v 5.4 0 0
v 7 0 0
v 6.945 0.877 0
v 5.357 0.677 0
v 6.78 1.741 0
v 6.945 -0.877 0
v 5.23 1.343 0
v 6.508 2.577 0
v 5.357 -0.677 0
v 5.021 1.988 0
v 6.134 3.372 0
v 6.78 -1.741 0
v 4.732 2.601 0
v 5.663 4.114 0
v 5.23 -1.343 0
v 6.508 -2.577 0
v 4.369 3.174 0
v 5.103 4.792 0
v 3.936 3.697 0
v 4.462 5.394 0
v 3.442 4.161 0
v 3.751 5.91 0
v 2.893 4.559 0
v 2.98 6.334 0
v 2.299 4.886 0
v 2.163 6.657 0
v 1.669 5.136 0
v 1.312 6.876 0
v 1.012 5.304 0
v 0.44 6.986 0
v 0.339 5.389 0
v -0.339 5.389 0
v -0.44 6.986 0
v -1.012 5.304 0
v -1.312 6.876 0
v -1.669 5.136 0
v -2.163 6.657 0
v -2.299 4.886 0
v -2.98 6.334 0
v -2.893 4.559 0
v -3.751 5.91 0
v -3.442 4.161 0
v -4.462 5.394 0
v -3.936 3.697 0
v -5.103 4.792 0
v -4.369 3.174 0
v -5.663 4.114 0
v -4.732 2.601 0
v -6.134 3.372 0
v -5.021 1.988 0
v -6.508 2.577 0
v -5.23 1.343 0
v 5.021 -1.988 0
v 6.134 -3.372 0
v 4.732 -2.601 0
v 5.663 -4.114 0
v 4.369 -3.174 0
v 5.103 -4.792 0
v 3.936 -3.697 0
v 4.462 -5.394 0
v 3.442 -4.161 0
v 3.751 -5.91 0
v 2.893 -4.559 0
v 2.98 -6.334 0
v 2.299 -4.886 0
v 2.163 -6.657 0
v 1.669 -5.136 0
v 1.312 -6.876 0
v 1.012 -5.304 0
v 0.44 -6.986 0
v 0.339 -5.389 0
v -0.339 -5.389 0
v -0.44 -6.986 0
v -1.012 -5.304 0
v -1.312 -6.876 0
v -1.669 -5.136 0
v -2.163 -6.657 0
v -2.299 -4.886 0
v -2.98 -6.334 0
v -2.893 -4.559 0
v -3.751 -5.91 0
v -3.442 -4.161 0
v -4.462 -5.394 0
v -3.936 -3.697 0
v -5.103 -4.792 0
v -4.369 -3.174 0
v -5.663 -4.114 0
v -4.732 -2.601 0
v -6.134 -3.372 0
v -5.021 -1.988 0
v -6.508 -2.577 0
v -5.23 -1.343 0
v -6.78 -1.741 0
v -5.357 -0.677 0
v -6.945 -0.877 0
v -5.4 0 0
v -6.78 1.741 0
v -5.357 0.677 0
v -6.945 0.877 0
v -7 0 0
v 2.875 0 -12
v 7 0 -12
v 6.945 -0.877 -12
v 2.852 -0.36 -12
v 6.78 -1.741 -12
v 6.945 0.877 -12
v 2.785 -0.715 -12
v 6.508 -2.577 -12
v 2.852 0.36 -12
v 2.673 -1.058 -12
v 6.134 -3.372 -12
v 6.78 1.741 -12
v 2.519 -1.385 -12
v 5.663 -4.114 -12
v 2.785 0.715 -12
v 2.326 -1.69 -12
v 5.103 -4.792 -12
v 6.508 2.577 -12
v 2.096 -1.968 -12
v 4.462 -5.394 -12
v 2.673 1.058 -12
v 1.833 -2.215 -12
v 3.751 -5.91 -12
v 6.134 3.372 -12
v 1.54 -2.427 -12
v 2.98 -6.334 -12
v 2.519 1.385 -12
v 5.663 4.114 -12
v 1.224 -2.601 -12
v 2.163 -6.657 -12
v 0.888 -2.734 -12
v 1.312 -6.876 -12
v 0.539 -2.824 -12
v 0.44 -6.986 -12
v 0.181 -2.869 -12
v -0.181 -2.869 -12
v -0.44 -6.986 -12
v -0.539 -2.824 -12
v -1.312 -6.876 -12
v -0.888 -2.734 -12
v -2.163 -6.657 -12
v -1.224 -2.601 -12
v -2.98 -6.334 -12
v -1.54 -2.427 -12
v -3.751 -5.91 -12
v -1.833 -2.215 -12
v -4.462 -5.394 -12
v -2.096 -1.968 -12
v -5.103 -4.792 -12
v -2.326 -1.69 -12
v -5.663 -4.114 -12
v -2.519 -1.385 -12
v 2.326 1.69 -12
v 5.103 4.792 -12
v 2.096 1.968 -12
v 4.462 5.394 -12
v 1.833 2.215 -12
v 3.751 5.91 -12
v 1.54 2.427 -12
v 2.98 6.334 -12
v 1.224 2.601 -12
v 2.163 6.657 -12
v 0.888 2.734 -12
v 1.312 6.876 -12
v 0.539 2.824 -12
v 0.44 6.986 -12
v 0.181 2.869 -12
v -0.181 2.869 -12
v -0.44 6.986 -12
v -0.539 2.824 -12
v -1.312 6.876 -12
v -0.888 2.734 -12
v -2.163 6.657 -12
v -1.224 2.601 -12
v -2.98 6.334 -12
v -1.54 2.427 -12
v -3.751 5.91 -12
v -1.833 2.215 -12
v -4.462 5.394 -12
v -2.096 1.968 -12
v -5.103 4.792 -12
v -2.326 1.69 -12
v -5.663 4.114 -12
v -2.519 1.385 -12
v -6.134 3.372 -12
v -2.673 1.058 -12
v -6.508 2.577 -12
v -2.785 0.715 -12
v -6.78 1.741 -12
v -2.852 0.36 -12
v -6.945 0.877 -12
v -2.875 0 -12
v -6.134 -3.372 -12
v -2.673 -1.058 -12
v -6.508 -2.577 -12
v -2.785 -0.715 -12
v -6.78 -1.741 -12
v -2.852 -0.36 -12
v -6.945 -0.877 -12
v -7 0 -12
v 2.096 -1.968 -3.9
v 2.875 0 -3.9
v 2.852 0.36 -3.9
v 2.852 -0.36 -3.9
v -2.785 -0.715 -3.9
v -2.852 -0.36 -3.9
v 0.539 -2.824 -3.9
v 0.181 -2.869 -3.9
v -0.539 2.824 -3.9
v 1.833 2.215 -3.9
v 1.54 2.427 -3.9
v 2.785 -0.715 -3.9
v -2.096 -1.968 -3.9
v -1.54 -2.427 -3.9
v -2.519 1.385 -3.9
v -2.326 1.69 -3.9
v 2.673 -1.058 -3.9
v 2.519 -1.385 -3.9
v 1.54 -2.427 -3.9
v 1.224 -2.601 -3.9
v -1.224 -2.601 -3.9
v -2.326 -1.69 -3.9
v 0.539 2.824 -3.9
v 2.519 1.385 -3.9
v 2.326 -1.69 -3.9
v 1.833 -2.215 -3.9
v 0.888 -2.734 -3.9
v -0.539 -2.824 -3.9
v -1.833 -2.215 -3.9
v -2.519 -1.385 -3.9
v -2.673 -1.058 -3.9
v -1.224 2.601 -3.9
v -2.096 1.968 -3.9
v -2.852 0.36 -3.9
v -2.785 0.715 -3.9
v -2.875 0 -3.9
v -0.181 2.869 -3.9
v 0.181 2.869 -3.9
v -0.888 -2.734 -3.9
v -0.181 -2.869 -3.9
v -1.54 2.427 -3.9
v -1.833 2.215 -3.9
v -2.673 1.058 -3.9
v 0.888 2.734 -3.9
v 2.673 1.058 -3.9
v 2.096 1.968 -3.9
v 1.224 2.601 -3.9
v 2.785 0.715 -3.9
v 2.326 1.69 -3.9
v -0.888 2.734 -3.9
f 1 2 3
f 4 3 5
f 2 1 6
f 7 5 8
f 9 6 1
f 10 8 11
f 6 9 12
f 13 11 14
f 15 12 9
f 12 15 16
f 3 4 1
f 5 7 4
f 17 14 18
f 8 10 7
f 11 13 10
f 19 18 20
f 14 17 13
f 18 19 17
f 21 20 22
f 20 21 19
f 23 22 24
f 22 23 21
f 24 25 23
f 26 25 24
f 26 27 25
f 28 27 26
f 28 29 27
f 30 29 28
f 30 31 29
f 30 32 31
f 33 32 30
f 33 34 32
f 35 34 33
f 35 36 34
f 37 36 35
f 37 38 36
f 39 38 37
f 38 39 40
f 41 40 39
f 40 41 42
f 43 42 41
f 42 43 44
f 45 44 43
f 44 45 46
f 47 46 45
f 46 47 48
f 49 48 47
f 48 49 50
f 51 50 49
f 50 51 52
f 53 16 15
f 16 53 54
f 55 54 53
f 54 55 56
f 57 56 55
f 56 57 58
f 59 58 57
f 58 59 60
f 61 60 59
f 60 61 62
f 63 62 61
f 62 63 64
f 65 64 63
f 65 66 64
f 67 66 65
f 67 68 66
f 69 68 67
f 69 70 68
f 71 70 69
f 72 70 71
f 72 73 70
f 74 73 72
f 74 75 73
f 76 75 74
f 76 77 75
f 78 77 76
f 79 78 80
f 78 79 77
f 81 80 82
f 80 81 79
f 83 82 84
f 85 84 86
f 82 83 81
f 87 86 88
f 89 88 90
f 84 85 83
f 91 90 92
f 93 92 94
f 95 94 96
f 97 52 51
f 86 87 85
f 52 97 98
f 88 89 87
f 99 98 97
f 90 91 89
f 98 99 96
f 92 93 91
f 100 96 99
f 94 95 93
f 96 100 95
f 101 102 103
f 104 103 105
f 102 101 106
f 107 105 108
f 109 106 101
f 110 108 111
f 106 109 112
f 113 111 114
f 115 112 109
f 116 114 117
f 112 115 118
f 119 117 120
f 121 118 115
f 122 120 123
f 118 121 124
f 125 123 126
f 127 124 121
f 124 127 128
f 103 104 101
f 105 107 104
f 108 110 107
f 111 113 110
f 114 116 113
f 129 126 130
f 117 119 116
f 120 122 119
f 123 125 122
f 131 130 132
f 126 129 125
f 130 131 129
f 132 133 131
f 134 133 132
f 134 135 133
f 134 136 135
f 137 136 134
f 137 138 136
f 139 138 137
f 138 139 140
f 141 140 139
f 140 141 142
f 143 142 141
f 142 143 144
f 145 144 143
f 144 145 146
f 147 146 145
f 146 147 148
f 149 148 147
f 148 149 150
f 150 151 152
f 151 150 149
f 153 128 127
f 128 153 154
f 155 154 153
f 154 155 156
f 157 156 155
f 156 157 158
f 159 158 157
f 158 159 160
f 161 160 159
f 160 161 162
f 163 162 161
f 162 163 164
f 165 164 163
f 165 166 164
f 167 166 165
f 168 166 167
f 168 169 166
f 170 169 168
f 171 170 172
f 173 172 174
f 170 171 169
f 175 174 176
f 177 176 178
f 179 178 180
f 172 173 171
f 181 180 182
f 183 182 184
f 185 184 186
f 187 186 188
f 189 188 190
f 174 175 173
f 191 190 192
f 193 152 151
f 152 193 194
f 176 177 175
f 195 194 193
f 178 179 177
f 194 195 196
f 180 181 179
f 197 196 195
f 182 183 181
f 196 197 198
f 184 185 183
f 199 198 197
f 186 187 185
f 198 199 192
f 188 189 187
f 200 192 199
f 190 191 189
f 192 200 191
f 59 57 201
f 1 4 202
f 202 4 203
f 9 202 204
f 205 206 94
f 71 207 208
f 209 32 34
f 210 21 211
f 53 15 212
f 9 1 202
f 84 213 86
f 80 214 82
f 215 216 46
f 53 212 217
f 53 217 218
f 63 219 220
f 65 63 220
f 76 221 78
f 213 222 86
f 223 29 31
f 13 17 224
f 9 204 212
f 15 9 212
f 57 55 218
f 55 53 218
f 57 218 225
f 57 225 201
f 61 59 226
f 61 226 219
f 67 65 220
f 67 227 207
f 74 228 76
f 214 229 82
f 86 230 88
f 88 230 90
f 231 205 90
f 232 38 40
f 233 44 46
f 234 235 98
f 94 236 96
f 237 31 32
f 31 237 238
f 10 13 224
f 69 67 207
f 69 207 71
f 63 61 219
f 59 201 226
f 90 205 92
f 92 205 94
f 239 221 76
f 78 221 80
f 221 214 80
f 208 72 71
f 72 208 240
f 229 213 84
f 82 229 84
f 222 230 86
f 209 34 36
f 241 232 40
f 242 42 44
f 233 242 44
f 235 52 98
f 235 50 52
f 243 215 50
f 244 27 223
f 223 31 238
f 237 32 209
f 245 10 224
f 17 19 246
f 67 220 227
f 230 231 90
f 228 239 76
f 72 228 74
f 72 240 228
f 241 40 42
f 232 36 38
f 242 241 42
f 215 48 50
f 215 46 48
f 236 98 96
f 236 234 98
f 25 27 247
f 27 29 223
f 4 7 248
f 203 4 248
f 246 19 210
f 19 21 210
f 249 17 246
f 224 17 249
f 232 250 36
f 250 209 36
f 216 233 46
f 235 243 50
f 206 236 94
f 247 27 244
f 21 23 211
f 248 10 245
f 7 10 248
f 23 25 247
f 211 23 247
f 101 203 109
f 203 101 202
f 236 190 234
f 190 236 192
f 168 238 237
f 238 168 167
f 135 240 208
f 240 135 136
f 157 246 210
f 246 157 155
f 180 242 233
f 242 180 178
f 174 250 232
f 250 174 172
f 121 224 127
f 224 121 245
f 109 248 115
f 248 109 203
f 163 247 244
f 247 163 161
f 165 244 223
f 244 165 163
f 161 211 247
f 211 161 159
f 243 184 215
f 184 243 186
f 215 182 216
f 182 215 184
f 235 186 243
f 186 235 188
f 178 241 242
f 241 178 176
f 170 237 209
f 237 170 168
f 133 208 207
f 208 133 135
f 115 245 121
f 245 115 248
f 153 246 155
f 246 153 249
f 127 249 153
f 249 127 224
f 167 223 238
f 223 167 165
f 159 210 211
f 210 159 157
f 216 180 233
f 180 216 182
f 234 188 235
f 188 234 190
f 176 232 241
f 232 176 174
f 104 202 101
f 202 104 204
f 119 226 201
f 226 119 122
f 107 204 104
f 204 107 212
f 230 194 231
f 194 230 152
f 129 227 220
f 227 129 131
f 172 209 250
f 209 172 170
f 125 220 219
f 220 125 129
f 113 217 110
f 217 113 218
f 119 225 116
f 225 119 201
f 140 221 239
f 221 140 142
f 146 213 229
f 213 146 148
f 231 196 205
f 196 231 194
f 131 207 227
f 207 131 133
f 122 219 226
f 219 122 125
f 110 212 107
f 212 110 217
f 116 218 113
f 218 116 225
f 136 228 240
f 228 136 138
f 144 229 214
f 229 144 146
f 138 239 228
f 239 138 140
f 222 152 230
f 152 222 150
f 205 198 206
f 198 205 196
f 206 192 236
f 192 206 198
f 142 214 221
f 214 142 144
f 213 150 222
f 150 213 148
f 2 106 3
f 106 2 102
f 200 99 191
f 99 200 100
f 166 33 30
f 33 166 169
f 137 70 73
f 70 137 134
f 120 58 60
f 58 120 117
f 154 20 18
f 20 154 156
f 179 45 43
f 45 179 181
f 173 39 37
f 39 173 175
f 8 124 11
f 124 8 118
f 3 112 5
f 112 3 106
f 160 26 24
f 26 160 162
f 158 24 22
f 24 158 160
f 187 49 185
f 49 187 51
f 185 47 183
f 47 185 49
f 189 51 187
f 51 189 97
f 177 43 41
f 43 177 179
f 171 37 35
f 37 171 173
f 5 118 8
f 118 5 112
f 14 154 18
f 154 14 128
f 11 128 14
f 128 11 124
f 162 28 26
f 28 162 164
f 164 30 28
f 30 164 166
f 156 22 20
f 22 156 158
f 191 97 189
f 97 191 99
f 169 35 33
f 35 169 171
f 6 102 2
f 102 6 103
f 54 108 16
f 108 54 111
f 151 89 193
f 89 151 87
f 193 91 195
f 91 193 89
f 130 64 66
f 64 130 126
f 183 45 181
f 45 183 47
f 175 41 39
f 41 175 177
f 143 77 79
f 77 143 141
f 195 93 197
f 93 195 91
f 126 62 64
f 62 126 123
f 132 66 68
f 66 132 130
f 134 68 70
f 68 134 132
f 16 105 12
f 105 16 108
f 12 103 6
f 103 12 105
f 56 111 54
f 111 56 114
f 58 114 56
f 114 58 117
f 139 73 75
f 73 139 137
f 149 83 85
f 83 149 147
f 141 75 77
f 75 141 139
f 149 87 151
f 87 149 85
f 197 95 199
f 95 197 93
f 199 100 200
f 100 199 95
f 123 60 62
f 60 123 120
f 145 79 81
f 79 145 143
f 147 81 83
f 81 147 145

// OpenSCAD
$fn = 50;


difference() {
	union() {
		translate(v = [0, 0, -12.0000000000]) {
			cylinder(h = 12, r = 7.0000000000);
		}
		cylinder(h = 0, r = 10.0000000000);
	}
	union() {
		translate(v = [0, 0, 0]) {
			rotate(a = [0, 0, 0]) {
				difference() {
					union() {
						#translate(v = [0, 0, -12.0000000000]) {
							cylinder(h = 12, r = 2.6000000000);
						}
						#translate(v = [0, 0, -3.9000000000]) {
							cylinder(h = 3.9000000000, r = 7.0000000000, r1 = 2.8750000000, r2 = 5.4000000000);
						}
						#translate(v = [0, 0, -12.0000000000]) {
							cylinder(h = 12, r = 2.8750000000);
						}
						#translate(v = [0, 0, -12.0000000000]) {
							cylinder(h = 12, r = 2.6000000000);
						}
					}
					union();
				}
			}
		}
	}
}
